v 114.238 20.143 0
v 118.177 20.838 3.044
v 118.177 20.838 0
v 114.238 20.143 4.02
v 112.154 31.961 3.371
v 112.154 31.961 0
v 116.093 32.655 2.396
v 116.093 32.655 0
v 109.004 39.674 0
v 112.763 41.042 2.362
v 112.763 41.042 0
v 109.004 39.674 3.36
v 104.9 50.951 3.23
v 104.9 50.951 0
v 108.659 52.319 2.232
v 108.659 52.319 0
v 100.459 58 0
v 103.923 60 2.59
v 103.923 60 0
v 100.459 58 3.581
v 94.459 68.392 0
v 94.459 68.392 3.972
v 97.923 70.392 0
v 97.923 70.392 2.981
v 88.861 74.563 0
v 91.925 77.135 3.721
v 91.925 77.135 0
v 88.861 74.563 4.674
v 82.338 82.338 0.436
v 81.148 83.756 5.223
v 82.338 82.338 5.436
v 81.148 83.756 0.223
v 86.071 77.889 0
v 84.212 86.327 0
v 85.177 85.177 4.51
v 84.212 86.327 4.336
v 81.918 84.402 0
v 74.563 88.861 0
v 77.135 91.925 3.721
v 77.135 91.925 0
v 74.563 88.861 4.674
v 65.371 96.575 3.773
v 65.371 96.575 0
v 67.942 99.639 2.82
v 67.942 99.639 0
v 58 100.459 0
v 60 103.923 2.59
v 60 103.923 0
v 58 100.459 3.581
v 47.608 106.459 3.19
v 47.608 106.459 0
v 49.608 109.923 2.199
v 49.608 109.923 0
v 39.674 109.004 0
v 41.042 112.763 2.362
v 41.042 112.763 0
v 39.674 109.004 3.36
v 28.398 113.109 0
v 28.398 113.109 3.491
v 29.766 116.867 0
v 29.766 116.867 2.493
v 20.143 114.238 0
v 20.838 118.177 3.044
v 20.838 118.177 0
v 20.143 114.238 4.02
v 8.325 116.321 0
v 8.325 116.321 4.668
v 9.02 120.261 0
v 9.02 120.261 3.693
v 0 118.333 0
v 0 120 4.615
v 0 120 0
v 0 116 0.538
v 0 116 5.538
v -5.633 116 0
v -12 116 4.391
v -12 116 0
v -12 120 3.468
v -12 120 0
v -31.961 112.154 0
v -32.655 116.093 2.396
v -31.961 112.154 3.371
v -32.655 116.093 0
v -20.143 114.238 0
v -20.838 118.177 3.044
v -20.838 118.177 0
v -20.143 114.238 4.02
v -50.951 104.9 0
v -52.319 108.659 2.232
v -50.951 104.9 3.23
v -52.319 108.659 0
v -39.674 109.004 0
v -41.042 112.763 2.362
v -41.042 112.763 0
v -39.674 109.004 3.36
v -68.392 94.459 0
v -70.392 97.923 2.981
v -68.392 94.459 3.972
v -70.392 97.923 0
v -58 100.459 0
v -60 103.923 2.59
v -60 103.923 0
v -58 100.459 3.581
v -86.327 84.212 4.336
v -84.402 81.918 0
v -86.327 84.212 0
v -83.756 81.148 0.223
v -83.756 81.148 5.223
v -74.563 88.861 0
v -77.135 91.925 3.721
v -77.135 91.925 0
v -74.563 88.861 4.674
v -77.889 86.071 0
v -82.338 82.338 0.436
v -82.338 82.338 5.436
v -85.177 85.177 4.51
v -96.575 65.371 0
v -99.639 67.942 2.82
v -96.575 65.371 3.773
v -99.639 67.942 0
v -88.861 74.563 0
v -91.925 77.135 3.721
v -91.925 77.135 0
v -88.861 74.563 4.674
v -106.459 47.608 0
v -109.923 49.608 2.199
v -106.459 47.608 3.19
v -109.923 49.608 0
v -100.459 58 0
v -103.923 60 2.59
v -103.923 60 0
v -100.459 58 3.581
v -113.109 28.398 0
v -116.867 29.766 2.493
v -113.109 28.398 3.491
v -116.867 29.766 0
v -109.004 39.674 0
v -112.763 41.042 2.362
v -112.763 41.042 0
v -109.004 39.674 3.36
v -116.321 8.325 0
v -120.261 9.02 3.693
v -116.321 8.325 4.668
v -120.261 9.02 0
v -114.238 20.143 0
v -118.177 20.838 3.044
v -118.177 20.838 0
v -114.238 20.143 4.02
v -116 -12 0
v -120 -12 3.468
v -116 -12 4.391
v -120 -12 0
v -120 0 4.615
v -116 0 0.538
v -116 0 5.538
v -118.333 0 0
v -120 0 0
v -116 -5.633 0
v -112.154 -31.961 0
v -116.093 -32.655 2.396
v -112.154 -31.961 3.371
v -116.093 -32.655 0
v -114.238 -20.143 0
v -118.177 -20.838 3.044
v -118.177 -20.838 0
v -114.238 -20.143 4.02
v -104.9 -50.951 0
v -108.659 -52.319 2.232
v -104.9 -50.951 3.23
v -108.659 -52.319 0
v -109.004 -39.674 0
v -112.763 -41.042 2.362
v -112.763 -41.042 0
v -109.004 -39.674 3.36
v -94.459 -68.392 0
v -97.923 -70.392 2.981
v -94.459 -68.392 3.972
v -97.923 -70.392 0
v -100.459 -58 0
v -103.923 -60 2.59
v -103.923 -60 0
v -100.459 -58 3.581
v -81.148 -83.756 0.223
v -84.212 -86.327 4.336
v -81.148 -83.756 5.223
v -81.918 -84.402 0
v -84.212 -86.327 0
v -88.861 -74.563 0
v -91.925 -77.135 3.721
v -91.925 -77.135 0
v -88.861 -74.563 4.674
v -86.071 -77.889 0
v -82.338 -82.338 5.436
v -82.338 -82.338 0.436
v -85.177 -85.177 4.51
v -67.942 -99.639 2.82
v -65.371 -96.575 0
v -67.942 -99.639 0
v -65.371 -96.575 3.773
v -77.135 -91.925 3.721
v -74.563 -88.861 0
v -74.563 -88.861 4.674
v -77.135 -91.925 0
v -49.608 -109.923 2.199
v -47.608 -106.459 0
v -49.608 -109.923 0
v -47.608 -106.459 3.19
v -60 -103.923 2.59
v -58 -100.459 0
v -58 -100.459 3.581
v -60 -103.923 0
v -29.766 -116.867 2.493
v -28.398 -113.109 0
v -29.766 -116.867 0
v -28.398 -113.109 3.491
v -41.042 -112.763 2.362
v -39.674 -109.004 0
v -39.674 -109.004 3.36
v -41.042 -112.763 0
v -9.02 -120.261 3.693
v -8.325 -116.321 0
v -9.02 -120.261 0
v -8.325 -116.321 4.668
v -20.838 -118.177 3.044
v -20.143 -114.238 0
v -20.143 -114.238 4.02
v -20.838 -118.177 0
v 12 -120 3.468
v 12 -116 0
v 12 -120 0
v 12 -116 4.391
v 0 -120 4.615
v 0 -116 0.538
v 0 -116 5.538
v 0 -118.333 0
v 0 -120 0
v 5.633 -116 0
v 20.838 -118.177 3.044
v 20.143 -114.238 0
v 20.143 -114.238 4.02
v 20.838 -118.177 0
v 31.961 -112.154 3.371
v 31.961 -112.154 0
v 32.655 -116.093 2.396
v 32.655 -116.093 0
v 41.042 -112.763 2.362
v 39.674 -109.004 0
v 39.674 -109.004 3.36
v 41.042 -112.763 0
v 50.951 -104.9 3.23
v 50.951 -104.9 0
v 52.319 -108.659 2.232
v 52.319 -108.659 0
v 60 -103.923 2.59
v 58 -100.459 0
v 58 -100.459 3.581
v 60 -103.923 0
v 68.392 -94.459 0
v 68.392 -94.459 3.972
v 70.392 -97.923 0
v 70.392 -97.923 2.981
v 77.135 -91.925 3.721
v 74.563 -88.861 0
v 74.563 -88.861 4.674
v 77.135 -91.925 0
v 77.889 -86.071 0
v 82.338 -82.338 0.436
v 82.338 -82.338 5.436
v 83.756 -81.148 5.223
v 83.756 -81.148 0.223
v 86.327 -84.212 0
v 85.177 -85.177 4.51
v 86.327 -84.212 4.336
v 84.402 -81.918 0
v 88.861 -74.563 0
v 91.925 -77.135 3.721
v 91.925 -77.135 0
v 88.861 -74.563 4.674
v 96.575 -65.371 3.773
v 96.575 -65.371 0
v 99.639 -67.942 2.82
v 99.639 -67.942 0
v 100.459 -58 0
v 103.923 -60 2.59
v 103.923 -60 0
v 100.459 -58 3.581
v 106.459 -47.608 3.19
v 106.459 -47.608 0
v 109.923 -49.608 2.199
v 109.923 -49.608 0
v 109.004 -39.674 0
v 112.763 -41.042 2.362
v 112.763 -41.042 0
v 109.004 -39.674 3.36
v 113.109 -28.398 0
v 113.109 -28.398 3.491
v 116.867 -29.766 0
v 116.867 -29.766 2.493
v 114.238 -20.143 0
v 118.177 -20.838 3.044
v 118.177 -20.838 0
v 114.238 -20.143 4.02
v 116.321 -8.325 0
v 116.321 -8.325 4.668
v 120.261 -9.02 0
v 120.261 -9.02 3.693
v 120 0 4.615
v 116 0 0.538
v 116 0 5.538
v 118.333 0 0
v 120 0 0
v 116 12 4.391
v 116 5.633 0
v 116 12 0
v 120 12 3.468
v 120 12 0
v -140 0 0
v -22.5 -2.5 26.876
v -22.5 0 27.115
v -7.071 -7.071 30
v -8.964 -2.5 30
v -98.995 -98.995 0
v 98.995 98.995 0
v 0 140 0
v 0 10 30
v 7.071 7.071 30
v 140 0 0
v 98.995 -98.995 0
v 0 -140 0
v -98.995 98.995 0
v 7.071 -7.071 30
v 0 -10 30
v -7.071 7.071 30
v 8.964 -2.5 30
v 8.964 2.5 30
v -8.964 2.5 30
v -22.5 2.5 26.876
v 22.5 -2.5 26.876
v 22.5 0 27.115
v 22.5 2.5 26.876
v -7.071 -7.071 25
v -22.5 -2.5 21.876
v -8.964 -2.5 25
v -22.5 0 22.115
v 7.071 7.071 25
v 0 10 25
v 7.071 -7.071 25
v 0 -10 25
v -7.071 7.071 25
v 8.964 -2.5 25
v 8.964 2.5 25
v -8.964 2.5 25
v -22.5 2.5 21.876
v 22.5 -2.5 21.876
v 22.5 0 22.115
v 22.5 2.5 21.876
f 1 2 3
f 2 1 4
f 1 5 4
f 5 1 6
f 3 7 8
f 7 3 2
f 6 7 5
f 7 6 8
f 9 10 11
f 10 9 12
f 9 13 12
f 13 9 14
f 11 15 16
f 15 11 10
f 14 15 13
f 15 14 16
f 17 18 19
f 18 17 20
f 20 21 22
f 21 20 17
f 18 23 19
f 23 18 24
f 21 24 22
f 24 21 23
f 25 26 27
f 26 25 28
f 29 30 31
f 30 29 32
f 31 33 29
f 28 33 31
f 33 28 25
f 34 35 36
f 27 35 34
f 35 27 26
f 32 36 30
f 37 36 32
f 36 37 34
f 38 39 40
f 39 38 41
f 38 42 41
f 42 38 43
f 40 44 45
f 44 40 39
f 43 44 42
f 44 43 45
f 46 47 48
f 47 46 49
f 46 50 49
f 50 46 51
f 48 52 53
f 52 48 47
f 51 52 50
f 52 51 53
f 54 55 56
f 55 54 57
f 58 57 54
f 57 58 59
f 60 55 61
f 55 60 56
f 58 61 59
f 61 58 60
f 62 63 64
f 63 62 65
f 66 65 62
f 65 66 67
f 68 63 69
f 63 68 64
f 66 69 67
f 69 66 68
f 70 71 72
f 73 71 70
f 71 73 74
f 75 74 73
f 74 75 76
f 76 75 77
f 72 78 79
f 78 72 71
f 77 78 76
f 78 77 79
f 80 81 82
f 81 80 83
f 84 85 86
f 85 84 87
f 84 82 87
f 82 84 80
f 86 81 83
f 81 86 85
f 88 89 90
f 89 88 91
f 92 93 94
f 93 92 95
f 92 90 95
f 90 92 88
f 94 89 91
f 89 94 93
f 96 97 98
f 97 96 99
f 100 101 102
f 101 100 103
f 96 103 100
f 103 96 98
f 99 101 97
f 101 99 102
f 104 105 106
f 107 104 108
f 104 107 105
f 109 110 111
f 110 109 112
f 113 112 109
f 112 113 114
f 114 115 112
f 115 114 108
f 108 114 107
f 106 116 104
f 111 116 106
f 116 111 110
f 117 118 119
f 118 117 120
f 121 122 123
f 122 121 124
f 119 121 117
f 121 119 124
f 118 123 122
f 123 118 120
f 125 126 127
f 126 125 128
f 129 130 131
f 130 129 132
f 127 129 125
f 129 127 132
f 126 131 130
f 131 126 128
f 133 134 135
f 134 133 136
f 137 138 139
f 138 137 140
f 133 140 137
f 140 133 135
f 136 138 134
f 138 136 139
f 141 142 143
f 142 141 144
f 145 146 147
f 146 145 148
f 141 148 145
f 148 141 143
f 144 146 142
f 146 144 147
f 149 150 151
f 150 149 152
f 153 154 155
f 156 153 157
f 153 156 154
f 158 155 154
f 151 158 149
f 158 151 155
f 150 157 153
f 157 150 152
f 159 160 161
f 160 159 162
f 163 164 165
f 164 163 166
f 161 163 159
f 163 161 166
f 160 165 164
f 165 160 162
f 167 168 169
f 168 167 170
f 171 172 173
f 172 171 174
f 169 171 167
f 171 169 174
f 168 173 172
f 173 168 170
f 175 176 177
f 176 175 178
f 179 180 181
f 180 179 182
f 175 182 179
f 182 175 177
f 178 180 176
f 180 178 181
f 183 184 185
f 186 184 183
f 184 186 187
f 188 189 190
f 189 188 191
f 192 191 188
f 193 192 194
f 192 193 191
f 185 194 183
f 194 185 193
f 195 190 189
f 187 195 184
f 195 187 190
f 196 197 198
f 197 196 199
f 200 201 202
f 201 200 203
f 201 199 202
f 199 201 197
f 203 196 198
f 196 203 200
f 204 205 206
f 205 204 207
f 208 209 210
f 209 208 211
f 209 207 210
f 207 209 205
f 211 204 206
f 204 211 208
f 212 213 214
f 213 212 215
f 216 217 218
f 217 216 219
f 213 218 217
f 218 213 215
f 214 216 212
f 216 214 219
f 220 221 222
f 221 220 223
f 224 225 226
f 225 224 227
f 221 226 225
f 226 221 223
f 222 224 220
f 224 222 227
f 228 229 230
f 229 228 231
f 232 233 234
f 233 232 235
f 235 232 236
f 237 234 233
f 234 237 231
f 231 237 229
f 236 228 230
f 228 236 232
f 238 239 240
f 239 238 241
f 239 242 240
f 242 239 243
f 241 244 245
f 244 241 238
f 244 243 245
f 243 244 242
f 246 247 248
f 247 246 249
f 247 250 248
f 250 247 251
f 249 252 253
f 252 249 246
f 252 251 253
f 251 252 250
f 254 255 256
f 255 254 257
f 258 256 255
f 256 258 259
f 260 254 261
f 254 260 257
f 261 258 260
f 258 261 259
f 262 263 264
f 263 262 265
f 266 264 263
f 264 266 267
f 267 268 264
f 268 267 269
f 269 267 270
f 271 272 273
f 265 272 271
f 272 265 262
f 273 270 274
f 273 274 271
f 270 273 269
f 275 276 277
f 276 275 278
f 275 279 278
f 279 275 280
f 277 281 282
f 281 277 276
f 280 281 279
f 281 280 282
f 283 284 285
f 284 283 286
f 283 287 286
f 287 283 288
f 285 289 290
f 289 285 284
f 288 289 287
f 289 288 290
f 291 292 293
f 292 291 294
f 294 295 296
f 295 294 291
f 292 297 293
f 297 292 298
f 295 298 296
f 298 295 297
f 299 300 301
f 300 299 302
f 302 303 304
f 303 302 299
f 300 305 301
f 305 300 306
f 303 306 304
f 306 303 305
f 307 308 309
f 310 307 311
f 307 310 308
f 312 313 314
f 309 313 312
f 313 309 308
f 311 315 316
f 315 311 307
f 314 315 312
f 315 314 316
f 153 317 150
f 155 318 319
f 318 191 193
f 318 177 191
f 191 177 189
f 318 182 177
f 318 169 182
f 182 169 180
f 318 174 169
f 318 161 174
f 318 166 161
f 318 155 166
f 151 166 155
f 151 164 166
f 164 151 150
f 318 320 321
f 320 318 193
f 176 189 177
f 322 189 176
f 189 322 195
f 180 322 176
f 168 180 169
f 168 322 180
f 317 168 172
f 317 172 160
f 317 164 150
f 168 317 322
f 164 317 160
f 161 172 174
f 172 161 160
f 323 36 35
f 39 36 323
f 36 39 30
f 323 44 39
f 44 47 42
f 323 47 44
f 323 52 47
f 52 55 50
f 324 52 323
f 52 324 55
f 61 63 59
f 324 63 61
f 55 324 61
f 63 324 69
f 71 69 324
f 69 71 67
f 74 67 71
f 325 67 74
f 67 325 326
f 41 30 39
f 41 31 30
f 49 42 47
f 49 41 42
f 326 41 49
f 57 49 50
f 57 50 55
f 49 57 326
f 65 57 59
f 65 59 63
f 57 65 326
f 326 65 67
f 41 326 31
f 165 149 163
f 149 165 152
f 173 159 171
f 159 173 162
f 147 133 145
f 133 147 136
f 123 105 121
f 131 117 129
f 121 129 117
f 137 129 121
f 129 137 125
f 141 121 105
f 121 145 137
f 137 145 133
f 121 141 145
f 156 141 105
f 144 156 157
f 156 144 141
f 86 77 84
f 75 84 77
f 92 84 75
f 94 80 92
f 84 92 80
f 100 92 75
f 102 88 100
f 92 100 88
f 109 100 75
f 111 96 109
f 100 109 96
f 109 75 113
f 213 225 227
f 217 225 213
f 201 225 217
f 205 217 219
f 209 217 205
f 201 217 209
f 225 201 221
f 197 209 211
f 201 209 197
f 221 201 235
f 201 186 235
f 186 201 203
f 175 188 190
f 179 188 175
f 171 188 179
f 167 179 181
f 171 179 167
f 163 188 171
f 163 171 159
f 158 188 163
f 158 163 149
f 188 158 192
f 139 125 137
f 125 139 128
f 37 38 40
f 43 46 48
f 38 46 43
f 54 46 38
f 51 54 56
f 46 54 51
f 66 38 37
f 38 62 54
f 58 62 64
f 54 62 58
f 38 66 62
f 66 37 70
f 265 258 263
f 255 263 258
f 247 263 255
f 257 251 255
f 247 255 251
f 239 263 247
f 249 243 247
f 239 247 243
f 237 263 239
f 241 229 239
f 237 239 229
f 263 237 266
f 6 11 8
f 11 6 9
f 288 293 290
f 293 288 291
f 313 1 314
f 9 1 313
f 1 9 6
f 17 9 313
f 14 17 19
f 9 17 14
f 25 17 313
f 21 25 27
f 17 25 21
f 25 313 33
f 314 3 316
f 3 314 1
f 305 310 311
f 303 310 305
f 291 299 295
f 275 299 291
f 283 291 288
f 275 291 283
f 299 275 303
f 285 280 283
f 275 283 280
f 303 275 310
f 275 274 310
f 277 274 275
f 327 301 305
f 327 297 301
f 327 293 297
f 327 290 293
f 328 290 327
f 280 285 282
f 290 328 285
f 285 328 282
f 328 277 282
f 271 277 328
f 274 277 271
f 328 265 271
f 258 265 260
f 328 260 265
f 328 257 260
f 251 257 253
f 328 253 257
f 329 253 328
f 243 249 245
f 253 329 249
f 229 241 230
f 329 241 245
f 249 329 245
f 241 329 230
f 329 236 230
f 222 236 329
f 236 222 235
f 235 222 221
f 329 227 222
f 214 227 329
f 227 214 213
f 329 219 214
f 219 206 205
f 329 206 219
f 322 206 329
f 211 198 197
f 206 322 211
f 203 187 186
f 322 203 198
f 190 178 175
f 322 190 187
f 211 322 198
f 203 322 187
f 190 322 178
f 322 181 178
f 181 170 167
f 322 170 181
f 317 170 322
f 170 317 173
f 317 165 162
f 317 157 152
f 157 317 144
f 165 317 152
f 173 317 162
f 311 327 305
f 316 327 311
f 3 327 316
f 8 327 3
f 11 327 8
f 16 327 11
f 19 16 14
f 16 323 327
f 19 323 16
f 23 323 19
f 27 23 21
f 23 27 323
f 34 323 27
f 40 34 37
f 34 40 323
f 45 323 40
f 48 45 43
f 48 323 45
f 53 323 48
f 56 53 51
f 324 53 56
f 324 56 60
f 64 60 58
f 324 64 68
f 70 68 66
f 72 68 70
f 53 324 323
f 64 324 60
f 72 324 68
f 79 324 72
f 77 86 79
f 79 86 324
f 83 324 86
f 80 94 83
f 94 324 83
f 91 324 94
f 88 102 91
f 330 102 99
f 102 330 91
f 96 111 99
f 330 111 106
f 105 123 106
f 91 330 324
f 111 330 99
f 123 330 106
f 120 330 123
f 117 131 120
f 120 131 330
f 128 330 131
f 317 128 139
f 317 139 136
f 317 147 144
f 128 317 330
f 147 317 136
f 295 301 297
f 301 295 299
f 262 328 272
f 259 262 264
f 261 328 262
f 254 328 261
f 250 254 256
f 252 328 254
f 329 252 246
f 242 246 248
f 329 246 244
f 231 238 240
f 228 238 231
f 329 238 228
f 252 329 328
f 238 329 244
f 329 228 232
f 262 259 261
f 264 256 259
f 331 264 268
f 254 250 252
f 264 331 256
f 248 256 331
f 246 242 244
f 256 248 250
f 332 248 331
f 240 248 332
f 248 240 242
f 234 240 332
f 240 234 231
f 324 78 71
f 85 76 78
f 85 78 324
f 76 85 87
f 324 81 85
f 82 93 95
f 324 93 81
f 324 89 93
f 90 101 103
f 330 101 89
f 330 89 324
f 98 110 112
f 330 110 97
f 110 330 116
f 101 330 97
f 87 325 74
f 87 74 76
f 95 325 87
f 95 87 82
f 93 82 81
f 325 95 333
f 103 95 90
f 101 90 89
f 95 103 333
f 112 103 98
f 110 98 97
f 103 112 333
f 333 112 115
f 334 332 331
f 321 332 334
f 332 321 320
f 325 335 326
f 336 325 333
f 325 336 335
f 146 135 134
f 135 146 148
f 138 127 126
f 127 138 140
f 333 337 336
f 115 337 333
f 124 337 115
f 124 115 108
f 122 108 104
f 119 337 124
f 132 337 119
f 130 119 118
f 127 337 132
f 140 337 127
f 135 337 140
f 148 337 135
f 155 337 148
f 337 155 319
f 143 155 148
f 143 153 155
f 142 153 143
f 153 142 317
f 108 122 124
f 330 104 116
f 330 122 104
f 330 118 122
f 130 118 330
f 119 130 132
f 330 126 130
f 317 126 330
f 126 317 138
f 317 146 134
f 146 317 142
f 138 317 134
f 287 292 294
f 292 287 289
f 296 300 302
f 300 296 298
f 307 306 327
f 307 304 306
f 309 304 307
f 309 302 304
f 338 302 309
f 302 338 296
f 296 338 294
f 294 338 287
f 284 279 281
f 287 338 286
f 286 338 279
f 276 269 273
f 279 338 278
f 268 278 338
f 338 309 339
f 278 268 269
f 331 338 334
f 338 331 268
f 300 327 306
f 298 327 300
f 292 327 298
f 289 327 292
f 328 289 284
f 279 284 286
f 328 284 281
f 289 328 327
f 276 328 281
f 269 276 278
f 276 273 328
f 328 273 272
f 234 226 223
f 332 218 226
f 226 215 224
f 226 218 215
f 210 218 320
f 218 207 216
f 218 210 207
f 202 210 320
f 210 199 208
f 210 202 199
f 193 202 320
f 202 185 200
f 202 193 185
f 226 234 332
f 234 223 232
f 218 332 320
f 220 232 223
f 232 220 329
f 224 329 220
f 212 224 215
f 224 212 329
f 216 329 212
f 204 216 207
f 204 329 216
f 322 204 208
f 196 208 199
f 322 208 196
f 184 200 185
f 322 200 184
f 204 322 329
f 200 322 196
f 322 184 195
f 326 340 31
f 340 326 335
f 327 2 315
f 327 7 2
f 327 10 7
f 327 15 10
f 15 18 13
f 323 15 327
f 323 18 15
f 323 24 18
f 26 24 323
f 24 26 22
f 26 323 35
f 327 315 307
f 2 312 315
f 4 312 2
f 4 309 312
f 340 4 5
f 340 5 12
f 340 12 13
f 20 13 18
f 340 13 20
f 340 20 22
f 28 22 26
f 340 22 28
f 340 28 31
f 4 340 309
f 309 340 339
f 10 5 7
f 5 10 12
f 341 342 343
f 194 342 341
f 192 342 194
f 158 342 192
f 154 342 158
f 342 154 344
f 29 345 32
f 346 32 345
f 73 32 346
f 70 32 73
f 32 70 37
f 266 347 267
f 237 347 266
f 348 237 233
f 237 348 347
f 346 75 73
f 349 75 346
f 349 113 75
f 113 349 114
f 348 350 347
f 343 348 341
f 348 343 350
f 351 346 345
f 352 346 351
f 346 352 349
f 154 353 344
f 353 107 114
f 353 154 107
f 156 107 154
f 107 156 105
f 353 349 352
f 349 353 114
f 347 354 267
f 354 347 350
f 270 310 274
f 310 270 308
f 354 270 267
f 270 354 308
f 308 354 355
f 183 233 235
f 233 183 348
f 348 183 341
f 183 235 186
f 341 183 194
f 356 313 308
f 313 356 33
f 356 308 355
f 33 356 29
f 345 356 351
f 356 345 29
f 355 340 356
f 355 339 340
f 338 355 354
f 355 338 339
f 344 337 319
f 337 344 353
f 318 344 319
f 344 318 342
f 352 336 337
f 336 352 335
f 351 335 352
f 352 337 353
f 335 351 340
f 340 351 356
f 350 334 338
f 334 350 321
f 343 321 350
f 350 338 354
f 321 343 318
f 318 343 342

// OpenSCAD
// a = 23; // degrees
// bottom = 14cm
// height = 3cm
$fn = 8;
// 

difference(){
    color("red") cylinder(h=30, r1 = 140, r2 = 10);
    translate([0, 0, -5]) color("blue") cylinder(h=30, r1 = 140, r2 = 10);
    cube([45, 5, 100], center=true);
        
    union(){
        for(i = [1 : 36]) {
            rotate([0, 0, i * 10]) translate([120, 0, -10]) rotate([0, 0, 90]) cube([12, 4, 100]);
        }
    }
}
